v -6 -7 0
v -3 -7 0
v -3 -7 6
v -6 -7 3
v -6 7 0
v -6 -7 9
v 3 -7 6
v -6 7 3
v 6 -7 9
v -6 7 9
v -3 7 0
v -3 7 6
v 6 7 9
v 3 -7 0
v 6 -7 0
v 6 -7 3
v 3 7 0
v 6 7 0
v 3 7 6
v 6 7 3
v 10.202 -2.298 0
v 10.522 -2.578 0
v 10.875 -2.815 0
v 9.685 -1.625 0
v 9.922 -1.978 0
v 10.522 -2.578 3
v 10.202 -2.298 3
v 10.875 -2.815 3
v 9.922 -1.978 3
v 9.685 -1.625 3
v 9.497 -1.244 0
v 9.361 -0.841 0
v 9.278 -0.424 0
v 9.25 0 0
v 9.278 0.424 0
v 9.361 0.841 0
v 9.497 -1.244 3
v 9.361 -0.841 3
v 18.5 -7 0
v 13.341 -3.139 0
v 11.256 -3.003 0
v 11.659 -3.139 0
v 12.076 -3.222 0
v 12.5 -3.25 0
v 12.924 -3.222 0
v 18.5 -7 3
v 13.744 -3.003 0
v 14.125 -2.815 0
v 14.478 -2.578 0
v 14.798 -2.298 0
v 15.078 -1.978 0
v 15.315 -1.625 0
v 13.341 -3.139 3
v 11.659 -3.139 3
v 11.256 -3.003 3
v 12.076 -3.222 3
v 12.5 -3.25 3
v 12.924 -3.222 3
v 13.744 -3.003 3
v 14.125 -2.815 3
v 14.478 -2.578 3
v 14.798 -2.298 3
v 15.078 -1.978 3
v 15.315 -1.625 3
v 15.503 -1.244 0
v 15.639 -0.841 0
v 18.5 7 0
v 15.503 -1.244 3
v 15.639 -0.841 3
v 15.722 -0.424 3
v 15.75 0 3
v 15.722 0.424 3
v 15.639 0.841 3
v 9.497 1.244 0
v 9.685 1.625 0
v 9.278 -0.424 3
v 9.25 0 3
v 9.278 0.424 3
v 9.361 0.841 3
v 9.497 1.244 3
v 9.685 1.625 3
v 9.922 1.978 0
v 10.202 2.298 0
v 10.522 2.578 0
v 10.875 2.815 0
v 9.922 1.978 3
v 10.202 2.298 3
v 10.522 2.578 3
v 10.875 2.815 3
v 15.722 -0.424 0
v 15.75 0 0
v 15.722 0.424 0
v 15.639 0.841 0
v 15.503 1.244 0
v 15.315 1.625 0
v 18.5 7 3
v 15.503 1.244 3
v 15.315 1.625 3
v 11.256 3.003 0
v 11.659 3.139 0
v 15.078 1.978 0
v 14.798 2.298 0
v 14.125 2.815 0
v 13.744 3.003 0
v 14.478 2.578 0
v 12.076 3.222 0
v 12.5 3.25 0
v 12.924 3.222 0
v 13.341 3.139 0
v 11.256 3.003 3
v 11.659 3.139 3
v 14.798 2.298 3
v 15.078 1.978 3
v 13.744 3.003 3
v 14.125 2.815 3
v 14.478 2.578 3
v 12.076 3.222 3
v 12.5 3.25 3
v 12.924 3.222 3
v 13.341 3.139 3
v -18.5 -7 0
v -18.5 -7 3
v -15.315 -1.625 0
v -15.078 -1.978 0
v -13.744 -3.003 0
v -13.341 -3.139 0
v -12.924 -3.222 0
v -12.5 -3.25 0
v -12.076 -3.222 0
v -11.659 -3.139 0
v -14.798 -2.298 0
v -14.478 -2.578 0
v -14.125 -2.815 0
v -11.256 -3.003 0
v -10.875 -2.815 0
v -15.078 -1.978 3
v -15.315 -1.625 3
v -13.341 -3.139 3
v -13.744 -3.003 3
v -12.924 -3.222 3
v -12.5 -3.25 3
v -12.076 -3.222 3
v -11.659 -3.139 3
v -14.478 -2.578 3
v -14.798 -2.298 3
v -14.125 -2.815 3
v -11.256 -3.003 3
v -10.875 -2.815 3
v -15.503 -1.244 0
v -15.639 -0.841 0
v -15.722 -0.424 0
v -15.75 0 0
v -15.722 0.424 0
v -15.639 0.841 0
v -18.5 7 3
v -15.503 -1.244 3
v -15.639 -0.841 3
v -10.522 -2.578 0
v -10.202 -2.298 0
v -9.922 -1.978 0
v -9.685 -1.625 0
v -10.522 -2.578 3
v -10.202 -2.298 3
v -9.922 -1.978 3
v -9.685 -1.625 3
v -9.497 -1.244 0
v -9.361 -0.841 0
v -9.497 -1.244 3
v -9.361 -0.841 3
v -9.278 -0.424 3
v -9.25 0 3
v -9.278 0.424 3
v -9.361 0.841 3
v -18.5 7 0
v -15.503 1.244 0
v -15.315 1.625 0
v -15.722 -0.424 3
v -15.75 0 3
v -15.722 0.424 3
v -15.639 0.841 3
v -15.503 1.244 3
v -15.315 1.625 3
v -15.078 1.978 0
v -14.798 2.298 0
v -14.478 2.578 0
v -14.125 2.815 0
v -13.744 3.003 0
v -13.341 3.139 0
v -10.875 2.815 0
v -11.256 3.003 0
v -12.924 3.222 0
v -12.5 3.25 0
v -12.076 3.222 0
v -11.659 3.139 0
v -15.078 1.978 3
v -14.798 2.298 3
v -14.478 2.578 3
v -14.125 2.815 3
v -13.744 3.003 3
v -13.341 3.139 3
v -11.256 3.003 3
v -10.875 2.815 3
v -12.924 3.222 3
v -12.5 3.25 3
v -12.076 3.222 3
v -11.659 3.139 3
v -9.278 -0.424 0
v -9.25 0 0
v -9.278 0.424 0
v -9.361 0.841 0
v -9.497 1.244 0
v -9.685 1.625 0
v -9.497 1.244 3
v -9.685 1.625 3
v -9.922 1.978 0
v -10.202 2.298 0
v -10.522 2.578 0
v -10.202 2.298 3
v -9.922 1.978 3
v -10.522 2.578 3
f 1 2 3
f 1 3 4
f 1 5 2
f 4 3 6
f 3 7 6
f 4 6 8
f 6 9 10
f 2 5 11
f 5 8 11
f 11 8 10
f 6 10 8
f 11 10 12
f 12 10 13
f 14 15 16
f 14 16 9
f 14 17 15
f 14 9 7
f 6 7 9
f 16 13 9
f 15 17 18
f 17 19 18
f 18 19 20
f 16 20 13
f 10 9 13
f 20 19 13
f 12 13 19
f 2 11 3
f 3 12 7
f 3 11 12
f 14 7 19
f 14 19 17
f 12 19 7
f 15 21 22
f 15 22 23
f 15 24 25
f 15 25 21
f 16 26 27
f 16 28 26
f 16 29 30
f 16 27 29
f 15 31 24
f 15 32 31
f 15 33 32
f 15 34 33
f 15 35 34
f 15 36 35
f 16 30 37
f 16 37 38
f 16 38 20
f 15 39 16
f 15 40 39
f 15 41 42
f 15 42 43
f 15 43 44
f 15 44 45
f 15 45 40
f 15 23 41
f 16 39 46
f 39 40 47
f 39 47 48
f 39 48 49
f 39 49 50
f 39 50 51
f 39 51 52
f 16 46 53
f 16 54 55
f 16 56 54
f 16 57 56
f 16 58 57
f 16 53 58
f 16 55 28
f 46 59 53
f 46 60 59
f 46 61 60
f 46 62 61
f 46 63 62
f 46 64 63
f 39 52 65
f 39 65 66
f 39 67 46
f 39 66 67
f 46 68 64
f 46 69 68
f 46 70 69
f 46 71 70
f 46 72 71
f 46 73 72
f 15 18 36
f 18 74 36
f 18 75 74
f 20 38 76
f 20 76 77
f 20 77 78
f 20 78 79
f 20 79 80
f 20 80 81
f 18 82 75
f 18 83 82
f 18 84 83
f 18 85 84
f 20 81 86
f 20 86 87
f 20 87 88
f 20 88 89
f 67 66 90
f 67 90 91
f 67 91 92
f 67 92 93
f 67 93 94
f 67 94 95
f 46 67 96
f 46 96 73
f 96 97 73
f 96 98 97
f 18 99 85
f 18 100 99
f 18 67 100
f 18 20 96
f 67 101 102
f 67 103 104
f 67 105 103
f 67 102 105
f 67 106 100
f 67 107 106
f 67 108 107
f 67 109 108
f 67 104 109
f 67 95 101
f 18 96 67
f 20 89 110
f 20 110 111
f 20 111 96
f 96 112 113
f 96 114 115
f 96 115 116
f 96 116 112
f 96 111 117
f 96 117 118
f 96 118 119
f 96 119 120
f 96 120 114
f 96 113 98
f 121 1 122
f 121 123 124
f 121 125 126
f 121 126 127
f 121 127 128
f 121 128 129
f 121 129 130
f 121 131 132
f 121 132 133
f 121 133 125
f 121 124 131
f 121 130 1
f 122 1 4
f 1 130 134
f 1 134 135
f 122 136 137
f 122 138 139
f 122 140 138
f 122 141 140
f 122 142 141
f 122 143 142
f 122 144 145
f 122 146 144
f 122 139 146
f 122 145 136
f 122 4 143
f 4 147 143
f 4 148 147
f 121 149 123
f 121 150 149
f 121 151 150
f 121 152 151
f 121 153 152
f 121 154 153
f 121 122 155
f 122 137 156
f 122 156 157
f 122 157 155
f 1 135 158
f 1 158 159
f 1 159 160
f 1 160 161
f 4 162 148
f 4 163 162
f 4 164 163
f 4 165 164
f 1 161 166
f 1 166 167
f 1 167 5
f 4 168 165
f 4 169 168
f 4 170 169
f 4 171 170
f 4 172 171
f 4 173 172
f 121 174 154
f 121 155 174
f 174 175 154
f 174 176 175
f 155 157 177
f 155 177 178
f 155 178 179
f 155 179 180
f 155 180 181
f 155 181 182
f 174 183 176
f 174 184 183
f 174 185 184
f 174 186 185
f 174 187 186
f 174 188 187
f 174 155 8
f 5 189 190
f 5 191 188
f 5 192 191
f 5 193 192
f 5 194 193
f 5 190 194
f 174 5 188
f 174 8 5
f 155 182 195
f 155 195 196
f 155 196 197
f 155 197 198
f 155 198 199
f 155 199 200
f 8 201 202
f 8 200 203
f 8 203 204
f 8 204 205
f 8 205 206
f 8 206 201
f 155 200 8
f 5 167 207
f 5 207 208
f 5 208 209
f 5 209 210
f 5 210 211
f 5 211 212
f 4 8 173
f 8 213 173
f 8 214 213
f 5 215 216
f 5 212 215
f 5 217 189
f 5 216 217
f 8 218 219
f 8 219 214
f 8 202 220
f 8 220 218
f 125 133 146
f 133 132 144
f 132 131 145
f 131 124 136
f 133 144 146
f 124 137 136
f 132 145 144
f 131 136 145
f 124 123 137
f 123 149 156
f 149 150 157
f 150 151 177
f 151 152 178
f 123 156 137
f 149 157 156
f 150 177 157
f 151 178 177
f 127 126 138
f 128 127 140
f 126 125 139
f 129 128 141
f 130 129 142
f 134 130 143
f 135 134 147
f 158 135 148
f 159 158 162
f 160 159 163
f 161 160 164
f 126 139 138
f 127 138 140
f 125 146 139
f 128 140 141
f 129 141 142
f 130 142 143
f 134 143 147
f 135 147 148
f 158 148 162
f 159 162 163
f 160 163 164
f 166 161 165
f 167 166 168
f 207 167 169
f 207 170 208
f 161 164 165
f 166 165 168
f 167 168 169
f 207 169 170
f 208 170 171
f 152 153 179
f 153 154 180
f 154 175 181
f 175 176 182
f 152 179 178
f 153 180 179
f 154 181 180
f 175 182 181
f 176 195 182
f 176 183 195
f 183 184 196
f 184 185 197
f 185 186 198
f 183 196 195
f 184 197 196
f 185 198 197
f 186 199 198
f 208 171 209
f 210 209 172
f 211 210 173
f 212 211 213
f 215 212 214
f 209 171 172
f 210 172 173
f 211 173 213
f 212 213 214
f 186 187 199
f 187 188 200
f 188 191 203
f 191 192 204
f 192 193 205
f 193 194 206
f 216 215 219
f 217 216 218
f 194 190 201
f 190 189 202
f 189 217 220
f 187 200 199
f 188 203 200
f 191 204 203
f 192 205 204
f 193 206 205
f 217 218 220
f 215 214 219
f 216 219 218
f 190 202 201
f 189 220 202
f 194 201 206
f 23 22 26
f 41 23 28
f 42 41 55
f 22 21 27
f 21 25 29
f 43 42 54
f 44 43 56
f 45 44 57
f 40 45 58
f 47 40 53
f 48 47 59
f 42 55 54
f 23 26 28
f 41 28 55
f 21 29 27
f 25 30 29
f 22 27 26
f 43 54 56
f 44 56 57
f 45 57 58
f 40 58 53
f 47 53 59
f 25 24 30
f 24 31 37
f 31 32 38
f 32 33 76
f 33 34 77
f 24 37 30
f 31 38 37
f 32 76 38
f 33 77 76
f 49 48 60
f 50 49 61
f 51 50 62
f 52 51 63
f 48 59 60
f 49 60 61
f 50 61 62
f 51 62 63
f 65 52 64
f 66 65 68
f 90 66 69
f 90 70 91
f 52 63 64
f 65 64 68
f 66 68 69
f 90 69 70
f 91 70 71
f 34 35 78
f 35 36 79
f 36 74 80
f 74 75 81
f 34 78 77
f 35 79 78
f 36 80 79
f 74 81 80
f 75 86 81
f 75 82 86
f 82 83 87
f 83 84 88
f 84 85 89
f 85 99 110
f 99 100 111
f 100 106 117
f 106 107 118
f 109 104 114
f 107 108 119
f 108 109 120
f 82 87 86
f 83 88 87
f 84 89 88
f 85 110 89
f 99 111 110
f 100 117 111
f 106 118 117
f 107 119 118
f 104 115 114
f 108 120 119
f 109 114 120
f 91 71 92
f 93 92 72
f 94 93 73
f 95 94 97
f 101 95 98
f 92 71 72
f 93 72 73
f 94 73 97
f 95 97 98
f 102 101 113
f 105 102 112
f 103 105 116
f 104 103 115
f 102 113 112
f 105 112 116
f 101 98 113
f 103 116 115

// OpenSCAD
// POV 3D 马鞍压条/抱箍 — 方形过桥, 内腔 6×6, 料厚 3, 2×M6 @ 25
// 夹持 6mm 方棒 (轴沿 Y, 贴板); 顶部方形压条压住, 两脚 M6 固定

inner = 6;          // 内腔方边
half = inner/2;     // 3
zin = inner;        // 内腔高 6 (正方形)
t = 3;              // 料厚
ohalf = half + t;   // 外半宽 6
htop = zin + t;     // 外顶 9
w = 14;             // 压条/脚 宽 (沿Y)
m6 = 6.5; cc = 25; hx = cc/2; foot = hx + 6;   // 18.5

module saddle_clamp_sq6() {
    difference() {
        union() {
            // 方形过桥 (倒U), 开口朝下
            difference() {
                translate([-ohalf, -w/2, 0]) cube([2*ohalf, w, htop]);
                translate([-half, -w/2-1, -1]) cube([inner, w+2, zin+1]);
            }
            // 两脚 (贴板 3mm)
            translate([ohalf, -w/2, 0])  cube([foot - ohalf, w, t]);
            translate([-foot, -w/2, 0])  cube([foot - ohalf, w, t]);
        }
        // 2 × M6 通孔
        for (sx = [-1, 1])
            translate([sx*hx, 0, -1]) cylinder(h = t + 2, d = m6, $fn = 48);
    }
}

saddle_clamp_sq6();
